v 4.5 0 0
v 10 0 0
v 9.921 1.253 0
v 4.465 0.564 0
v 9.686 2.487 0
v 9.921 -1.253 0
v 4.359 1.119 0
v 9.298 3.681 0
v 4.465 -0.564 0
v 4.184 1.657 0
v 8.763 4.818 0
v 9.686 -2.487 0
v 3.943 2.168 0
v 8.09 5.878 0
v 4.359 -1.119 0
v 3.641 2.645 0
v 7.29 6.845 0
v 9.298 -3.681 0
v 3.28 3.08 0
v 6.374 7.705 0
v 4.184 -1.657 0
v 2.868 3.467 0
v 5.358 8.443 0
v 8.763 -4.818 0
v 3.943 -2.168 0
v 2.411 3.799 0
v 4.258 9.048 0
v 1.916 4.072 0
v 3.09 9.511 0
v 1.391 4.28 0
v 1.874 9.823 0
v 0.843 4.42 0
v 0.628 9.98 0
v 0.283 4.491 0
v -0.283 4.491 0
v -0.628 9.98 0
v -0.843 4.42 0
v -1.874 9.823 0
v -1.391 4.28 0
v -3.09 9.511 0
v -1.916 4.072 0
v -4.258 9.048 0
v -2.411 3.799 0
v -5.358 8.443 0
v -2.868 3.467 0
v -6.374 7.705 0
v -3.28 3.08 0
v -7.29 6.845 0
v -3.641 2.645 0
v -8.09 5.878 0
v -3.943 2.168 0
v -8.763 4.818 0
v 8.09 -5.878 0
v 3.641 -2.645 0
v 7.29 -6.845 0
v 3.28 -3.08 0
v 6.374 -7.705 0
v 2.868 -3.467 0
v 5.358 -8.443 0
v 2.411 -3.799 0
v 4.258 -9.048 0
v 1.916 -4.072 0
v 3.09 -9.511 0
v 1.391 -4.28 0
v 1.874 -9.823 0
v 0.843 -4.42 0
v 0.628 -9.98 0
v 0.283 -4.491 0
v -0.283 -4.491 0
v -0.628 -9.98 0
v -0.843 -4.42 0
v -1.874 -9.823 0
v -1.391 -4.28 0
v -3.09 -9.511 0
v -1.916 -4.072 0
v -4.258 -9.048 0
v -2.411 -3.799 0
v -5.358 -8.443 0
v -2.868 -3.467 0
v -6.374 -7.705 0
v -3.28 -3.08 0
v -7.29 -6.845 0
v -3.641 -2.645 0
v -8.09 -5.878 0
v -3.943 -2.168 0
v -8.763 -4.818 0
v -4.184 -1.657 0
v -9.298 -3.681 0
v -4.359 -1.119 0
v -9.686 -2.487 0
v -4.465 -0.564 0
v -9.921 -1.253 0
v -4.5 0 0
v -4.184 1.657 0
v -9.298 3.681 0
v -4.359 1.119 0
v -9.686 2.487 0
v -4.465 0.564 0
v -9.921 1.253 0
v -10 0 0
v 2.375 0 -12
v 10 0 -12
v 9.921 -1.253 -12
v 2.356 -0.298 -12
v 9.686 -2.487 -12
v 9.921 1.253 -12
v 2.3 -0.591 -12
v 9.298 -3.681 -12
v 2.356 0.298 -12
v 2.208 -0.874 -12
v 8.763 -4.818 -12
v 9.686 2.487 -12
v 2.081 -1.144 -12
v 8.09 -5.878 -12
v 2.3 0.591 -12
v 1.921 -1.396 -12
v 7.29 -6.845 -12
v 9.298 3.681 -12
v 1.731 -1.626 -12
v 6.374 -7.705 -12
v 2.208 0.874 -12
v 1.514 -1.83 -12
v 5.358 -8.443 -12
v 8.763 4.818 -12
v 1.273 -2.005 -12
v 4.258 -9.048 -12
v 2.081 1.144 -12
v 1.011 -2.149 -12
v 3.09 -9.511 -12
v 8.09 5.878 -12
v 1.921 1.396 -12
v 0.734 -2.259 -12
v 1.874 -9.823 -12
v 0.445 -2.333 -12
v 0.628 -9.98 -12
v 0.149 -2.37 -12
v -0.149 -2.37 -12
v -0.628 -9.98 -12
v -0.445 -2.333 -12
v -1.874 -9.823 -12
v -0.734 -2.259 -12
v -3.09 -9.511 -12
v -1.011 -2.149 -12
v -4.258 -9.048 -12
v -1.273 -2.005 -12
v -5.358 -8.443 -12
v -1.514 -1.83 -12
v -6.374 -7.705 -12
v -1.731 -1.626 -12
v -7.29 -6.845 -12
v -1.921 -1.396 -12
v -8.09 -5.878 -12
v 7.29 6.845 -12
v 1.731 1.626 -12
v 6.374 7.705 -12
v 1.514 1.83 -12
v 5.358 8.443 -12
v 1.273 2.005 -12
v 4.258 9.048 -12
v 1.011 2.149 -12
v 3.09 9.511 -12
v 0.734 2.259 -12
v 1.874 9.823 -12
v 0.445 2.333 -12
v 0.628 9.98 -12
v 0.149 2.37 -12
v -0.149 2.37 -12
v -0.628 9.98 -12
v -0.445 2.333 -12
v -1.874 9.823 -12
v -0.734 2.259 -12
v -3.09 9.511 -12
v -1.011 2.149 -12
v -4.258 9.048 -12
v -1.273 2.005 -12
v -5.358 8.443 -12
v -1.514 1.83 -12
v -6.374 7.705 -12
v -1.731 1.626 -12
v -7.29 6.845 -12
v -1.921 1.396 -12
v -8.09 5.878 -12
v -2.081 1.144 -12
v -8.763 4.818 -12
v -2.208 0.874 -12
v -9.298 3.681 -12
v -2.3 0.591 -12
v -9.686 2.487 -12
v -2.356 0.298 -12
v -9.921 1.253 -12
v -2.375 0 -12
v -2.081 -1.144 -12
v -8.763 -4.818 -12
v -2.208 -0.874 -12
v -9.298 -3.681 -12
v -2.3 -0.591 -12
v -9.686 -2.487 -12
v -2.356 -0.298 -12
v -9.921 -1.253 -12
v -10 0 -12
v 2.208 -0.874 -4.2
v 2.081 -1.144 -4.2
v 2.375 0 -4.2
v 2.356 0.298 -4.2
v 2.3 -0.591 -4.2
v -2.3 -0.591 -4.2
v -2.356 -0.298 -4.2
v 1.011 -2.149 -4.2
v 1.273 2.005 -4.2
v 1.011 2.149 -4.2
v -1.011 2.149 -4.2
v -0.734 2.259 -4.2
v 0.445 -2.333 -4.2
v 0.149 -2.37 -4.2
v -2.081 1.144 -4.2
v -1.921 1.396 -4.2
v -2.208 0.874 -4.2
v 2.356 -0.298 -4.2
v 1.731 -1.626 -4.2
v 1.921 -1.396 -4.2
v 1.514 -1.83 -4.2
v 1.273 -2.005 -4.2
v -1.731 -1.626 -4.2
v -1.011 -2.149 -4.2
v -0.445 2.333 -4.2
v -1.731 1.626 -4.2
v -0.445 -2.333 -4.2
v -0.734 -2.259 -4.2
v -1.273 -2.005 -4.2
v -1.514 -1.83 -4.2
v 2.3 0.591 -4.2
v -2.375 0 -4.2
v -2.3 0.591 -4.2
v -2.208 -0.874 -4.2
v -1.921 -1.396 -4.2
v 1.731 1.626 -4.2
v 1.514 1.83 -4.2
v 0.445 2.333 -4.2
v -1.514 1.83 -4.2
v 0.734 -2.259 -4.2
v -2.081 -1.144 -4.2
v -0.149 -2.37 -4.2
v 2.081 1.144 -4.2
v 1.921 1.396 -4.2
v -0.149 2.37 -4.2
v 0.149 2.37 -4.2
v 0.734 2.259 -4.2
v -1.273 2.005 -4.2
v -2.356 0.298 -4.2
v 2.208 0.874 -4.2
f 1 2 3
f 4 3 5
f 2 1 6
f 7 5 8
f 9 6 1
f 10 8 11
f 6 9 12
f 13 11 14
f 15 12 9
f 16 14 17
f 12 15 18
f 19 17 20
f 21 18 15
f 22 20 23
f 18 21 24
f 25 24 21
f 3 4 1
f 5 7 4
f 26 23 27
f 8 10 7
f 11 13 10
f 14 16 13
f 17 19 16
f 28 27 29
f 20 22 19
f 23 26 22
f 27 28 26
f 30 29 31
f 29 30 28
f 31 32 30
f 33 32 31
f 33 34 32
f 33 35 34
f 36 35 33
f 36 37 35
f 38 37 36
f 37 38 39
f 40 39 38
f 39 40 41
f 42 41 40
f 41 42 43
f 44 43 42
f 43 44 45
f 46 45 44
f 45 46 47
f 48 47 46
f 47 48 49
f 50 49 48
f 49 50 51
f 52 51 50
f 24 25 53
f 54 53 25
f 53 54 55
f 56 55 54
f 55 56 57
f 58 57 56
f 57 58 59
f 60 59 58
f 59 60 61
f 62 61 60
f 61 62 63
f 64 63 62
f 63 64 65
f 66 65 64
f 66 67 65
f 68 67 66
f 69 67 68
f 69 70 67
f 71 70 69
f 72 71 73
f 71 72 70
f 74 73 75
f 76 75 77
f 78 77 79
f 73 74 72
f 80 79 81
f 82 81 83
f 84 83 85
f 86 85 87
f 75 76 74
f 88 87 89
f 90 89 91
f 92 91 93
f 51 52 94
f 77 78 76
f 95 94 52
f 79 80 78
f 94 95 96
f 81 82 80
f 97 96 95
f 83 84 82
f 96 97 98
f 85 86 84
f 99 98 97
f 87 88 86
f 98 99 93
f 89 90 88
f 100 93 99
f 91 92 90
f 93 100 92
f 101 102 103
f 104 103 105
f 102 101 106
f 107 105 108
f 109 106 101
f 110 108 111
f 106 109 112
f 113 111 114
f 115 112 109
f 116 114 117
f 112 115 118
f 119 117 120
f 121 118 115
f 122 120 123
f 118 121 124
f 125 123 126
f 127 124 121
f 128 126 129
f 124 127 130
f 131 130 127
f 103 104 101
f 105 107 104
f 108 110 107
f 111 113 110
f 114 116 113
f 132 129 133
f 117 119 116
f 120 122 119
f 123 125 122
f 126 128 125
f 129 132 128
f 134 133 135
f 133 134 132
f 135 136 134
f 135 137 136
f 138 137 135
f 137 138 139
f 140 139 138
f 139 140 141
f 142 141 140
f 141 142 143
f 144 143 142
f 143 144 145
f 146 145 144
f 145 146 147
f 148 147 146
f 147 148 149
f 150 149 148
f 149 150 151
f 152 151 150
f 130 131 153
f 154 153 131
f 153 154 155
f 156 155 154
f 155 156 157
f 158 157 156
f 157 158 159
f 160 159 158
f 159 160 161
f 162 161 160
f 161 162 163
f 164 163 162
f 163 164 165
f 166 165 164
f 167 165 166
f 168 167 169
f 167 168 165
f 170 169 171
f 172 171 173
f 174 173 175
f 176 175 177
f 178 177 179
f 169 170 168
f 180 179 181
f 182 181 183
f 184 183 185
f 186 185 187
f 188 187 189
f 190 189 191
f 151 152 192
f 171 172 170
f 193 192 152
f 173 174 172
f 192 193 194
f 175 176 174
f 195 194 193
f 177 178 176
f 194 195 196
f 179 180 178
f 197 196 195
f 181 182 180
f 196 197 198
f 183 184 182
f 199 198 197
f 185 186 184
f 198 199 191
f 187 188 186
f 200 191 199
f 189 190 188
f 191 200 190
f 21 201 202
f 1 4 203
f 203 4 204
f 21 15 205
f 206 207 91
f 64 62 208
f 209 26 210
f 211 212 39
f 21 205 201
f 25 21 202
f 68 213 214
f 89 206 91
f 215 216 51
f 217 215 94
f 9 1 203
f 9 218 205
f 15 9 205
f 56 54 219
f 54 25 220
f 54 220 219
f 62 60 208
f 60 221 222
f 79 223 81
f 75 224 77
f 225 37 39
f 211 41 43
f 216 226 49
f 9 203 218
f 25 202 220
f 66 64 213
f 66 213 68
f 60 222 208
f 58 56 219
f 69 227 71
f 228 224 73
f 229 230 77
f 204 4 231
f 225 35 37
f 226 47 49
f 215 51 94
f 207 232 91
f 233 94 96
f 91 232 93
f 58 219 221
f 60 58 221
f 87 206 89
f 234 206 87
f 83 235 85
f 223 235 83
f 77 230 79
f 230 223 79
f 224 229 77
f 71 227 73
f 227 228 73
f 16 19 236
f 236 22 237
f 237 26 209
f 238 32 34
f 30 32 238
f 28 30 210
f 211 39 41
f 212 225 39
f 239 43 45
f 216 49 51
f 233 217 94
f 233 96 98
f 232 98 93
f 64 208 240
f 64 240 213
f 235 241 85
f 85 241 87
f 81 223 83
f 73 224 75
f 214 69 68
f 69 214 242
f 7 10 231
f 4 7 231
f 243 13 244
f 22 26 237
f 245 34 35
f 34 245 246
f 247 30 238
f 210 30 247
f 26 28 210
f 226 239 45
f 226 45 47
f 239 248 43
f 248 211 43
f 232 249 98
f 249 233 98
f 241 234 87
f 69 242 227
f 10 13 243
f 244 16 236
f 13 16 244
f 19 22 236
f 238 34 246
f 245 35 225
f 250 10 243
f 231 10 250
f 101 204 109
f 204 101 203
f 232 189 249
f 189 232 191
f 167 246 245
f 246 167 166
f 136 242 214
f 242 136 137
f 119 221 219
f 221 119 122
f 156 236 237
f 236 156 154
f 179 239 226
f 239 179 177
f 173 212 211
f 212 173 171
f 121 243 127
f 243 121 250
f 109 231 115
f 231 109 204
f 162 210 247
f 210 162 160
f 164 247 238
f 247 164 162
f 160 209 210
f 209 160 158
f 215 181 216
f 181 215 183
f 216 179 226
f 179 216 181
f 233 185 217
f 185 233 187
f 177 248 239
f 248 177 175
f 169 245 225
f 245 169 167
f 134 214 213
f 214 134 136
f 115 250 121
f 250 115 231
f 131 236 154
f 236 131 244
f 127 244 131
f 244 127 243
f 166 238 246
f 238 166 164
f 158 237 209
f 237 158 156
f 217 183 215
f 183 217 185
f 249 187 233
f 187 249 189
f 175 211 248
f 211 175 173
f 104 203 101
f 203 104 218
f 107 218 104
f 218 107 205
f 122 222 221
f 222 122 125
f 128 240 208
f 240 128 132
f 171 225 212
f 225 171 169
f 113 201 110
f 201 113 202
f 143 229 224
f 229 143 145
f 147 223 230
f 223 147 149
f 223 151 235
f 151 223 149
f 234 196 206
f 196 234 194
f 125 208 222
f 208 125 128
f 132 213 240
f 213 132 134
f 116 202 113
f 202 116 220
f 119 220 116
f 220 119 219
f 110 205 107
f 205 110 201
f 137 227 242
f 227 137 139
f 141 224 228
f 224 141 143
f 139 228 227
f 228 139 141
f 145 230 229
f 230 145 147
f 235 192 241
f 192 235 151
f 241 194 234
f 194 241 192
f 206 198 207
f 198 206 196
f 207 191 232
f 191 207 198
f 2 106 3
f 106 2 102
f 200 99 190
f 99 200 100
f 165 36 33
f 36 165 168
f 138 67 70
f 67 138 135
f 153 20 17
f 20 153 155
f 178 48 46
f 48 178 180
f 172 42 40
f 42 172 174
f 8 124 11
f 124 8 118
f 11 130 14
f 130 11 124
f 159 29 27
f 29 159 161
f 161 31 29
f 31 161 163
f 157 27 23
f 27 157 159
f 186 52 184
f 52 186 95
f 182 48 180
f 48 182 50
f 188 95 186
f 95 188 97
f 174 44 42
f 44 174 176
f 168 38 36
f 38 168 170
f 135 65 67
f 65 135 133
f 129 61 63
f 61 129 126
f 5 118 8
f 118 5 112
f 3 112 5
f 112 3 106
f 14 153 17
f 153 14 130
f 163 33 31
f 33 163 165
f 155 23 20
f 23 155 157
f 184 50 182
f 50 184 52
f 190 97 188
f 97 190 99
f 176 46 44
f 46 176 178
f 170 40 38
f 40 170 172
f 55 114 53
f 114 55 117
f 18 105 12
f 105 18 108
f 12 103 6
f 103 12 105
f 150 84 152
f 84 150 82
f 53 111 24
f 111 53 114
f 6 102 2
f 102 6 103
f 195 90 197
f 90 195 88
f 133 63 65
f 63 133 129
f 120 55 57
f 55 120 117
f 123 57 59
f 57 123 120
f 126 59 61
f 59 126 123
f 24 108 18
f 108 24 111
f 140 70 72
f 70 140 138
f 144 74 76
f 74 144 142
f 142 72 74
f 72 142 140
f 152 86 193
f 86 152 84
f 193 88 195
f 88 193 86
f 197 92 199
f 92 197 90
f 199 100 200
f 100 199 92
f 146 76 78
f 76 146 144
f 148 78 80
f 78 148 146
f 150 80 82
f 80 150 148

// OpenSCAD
$fn = 50;


difference() {
	union() {
		translate(v = [0, 0, -12.0000000000]) {
			cylinder(h = 12, r = 10.0000000000);
		}
	}
	union() {
		translate(v = [0, 0, 0]) {
			rotate(a = [0, 0, 0]) {
				difference() {
					union() {
						#translate(v = [0, 0, -12.0000000000]) {
							cylinder(h = 12, r = 2.2500000000);
						}
						#translate(v = [0, 0, -4.2000000000]) {
							cylinder(h = 4.2000000000, r = 10.0000000000, r1 = 2.3750000000, r2 = 4.5000000000);
						}
						#translate(v = [0, 0, -12.0000000000]) {
							cylinder(h = 12, r = 2.3750000000);
						}
						#translate(v = [0, 0, -12.0000000000]) {
							cylinder(h = 12, r = 2.2500000000);
						}
					}
					union();
				}
			}
		}
	}
}
